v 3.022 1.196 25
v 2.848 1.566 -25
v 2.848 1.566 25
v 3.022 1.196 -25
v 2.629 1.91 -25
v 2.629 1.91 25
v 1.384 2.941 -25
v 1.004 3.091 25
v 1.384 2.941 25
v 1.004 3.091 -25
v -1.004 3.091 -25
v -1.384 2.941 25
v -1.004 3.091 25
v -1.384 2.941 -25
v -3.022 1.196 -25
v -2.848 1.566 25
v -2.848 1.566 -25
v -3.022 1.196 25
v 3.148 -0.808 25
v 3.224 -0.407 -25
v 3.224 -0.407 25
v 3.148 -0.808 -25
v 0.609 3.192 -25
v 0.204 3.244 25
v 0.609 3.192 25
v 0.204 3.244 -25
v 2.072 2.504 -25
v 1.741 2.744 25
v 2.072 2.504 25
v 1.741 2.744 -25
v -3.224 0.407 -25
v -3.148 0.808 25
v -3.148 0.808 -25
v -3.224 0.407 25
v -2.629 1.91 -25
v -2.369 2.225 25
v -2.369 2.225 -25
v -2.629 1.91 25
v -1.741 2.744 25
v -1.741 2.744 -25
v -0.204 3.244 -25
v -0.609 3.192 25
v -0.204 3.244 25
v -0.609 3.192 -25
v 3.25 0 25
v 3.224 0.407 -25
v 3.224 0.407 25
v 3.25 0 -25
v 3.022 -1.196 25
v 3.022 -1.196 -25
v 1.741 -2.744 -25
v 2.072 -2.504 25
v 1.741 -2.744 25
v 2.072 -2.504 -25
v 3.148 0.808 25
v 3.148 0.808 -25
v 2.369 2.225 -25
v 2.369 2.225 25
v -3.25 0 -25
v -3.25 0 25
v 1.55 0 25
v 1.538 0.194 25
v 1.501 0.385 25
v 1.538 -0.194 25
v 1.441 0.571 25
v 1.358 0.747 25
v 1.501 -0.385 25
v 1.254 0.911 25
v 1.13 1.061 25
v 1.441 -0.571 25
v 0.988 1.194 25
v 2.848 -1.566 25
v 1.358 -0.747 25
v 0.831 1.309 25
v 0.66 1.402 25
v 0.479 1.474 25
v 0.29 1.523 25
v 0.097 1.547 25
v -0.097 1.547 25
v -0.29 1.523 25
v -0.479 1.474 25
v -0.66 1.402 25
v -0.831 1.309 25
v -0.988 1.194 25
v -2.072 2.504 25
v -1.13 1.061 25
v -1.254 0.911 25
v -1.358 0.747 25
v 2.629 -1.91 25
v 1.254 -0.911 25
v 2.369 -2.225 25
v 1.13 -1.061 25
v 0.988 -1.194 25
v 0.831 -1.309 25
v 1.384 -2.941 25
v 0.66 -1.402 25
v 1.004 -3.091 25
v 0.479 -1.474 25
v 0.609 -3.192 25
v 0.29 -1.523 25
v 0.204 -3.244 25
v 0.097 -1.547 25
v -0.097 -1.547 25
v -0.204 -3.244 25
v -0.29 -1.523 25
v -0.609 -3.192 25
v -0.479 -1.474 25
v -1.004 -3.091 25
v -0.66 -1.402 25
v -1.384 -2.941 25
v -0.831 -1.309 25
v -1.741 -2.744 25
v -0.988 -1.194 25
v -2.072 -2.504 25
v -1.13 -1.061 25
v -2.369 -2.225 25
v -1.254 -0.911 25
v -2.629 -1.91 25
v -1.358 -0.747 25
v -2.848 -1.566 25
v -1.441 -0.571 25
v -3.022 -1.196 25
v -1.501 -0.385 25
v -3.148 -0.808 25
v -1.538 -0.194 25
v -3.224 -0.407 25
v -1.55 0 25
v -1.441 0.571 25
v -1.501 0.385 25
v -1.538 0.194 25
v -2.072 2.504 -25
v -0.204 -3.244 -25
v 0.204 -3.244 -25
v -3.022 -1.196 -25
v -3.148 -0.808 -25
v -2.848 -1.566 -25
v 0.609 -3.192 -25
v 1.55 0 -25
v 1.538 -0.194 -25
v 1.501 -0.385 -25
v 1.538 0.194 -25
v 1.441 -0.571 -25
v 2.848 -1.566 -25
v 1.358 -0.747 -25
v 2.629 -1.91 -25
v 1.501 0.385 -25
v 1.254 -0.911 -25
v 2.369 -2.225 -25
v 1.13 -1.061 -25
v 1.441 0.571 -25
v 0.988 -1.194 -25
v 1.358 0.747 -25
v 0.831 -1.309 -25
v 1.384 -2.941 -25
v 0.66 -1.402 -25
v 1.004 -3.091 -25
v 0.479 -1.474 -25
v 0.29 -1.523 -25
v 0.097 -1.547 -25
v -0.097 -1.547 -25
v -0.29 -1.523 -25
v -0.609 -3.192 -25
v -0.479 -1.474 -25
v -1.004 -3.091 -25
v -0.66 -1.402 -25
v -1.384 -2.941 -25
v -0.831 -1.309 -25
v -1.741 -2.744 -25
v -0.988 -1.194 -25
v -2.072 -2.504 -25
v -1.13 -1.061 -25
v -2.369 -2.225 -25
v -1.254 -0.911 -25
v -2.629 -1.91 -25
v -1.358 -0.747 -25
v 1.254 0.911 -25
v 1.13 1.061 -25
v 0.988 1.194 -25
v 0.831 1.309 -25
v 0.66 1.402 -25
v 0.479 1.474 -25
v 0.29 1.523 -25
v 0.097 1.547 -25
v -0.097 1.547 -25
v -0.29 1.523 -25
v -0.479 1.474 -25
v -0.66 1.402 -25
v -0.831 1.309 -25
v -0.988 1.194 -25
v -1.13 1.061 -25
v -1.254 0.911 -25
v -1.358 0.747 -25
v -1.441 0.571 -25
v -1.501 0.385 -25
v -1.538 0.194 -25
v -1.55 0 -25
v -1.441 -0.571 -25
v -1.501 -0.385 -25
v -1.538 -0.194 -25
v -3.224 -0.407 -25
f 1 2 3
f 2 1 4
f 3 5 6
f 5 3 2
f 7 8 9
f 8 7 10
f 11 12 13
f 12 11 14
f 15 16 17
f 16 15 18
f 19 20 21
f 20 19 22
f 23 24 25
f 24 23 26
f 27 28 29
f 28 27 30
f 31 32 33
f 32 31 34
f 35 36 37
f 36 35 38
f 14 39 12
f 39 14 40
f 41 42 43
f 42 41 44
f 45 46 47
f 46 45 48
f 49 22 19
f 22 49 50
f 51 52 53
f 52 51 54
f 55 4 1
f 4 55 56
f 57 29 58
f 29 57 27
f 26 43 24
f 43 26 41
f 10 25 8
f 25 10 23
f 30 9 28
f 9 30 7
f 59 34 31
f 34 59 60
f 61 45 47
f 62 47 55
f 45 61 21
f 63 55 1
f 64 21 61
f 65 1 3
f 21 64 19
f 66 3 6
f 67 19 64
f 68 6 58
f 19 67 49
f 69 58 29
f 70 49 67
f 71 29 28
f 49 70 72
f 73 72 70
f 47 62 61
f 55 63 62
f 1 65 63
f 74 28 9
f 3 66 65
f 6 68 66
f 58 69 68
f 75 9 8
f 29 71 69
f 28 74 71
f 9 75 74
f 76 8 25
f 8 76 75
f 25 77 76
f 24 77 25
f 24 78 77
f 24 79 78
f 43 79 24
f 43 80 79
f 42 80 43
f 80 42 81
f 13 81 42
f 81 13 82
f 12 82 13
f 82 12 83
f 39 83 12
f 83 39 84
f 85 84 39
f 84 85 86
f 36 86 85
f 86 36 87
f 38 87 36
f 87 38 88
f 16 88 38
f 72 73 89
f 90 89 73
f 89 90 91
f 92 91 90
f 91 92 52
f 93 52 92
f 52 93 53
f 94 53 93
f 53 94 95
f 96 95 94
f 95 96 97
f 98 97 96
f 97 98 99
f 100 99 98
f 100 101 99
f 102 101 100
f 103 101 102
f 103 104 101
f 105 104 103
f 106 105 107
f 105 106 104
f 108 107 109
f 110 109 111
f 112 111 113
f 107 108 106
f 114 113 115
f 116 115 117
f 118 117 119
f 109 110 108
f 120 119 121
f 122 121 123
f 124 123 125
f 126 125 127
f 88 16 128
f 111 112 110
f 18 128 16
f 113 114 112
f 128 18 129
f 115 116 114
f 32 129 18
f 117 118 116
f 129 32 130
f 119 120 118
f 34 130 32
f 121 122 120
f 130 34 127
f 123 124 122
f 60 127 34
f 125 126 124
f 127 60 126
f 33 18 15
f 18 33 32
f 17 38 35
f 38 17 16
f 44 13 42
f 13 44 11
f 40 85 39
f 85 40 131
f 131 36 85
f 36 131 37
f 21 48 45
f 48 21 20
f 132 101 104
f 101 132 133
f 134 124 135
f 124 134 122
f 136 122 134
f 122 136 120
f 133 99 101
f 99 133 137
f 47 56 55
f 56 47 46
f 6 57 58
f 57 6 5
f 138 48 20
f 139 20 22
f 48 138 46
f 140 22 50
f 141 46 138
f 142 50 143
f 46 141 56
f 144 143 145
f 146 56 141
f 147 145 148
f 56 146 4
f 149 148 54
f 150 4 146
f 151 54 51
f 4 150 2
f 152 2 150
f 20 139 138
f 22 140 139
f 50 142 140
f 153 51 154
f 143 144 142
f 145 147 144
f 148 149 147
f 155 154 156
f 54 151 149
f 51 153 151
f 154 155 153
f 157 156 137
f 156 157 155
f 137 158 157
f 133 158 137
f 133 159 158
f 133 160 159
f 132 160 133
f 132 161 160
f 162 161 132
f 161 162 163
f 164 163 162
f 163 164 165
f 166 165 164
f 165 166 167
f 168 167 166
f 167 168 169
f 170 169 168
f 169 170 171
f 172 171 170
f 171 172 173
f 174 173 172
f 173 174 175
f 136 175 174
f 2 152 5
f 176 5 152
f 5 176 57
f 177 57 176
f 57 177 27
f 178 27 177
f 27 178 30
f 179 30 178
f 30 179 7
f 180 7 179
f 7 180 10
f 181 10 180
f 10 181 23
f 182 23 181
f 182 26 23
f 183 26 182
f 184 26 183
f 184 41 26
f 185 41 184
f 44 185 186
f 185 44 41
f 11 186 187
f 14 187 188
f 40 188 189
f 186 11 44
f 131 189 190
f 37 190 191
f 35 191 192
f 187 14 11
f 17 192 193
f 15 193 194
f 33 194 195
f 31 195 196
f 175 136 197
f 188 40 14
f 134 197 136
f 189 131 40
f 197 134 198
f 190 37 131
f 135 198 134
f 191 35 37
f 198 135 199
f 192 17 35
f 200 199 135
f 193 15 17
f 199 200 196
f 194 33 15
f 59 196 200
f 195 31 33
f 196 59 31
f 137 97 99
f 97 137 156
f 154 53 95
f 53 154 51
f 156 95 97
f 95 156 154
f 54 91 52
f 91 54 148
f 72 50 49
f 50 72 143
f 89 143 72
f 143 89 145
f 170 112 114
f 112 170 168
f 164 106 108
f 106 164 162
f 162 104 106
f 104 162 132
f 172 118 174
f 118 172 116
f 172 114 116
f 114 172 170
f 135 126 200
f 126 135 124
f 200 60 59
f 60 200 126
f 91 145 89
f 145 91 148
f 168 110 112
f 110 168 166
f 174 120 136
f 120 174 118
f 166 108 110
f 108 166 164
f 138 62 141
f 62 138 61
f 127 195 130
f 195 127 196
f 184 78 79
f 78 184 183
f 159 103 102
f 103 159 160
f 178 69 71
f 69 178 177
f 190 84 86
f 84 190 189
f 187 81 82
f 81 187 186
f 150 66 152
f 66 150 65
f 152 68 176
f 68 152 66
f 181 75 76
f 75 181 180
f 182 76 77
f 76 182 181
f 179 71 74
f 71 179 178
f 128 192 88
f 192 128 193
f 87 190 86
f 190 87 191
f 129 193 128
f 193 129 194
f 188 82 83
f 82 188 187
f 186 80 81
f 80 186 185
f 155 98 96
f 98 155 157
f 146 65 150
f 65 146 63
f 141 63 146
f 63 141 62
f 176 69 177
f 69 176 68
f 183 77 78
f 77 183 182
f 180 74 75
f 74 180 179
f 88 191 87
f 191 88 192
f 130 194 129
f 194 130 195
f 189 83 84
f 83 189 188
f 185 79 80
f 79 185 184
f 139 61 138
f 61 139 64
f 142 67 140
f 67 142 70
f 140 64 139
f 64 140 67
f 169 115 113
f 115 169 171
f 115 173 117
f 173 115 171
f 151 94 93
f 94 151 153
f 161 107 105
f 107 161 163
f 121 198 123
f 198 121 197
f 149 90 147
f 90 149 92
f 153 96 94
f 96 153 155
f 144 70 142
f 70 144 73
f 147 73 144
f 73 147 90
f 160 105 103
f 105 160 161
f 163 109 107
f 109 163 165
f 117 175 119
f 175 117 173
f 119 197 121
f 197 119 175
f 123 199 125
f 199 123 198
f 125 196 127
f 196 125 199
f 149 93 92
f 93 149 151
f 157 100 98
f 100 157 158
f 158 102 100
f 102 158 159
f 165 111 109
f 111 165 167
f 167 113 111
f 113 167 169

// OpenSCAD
$fn = 50;


difference() {
	union() {
		translate(v = [0, 0, -25.0000000000]) {
			cylinder(h = 50, r = 3.2500000000);
		}
	}
	union() {
		translate(v = [0, 0, -100.0000000000]) {
			cylinder(h = 200, r = 1.5500000000);
		}
	}
}
